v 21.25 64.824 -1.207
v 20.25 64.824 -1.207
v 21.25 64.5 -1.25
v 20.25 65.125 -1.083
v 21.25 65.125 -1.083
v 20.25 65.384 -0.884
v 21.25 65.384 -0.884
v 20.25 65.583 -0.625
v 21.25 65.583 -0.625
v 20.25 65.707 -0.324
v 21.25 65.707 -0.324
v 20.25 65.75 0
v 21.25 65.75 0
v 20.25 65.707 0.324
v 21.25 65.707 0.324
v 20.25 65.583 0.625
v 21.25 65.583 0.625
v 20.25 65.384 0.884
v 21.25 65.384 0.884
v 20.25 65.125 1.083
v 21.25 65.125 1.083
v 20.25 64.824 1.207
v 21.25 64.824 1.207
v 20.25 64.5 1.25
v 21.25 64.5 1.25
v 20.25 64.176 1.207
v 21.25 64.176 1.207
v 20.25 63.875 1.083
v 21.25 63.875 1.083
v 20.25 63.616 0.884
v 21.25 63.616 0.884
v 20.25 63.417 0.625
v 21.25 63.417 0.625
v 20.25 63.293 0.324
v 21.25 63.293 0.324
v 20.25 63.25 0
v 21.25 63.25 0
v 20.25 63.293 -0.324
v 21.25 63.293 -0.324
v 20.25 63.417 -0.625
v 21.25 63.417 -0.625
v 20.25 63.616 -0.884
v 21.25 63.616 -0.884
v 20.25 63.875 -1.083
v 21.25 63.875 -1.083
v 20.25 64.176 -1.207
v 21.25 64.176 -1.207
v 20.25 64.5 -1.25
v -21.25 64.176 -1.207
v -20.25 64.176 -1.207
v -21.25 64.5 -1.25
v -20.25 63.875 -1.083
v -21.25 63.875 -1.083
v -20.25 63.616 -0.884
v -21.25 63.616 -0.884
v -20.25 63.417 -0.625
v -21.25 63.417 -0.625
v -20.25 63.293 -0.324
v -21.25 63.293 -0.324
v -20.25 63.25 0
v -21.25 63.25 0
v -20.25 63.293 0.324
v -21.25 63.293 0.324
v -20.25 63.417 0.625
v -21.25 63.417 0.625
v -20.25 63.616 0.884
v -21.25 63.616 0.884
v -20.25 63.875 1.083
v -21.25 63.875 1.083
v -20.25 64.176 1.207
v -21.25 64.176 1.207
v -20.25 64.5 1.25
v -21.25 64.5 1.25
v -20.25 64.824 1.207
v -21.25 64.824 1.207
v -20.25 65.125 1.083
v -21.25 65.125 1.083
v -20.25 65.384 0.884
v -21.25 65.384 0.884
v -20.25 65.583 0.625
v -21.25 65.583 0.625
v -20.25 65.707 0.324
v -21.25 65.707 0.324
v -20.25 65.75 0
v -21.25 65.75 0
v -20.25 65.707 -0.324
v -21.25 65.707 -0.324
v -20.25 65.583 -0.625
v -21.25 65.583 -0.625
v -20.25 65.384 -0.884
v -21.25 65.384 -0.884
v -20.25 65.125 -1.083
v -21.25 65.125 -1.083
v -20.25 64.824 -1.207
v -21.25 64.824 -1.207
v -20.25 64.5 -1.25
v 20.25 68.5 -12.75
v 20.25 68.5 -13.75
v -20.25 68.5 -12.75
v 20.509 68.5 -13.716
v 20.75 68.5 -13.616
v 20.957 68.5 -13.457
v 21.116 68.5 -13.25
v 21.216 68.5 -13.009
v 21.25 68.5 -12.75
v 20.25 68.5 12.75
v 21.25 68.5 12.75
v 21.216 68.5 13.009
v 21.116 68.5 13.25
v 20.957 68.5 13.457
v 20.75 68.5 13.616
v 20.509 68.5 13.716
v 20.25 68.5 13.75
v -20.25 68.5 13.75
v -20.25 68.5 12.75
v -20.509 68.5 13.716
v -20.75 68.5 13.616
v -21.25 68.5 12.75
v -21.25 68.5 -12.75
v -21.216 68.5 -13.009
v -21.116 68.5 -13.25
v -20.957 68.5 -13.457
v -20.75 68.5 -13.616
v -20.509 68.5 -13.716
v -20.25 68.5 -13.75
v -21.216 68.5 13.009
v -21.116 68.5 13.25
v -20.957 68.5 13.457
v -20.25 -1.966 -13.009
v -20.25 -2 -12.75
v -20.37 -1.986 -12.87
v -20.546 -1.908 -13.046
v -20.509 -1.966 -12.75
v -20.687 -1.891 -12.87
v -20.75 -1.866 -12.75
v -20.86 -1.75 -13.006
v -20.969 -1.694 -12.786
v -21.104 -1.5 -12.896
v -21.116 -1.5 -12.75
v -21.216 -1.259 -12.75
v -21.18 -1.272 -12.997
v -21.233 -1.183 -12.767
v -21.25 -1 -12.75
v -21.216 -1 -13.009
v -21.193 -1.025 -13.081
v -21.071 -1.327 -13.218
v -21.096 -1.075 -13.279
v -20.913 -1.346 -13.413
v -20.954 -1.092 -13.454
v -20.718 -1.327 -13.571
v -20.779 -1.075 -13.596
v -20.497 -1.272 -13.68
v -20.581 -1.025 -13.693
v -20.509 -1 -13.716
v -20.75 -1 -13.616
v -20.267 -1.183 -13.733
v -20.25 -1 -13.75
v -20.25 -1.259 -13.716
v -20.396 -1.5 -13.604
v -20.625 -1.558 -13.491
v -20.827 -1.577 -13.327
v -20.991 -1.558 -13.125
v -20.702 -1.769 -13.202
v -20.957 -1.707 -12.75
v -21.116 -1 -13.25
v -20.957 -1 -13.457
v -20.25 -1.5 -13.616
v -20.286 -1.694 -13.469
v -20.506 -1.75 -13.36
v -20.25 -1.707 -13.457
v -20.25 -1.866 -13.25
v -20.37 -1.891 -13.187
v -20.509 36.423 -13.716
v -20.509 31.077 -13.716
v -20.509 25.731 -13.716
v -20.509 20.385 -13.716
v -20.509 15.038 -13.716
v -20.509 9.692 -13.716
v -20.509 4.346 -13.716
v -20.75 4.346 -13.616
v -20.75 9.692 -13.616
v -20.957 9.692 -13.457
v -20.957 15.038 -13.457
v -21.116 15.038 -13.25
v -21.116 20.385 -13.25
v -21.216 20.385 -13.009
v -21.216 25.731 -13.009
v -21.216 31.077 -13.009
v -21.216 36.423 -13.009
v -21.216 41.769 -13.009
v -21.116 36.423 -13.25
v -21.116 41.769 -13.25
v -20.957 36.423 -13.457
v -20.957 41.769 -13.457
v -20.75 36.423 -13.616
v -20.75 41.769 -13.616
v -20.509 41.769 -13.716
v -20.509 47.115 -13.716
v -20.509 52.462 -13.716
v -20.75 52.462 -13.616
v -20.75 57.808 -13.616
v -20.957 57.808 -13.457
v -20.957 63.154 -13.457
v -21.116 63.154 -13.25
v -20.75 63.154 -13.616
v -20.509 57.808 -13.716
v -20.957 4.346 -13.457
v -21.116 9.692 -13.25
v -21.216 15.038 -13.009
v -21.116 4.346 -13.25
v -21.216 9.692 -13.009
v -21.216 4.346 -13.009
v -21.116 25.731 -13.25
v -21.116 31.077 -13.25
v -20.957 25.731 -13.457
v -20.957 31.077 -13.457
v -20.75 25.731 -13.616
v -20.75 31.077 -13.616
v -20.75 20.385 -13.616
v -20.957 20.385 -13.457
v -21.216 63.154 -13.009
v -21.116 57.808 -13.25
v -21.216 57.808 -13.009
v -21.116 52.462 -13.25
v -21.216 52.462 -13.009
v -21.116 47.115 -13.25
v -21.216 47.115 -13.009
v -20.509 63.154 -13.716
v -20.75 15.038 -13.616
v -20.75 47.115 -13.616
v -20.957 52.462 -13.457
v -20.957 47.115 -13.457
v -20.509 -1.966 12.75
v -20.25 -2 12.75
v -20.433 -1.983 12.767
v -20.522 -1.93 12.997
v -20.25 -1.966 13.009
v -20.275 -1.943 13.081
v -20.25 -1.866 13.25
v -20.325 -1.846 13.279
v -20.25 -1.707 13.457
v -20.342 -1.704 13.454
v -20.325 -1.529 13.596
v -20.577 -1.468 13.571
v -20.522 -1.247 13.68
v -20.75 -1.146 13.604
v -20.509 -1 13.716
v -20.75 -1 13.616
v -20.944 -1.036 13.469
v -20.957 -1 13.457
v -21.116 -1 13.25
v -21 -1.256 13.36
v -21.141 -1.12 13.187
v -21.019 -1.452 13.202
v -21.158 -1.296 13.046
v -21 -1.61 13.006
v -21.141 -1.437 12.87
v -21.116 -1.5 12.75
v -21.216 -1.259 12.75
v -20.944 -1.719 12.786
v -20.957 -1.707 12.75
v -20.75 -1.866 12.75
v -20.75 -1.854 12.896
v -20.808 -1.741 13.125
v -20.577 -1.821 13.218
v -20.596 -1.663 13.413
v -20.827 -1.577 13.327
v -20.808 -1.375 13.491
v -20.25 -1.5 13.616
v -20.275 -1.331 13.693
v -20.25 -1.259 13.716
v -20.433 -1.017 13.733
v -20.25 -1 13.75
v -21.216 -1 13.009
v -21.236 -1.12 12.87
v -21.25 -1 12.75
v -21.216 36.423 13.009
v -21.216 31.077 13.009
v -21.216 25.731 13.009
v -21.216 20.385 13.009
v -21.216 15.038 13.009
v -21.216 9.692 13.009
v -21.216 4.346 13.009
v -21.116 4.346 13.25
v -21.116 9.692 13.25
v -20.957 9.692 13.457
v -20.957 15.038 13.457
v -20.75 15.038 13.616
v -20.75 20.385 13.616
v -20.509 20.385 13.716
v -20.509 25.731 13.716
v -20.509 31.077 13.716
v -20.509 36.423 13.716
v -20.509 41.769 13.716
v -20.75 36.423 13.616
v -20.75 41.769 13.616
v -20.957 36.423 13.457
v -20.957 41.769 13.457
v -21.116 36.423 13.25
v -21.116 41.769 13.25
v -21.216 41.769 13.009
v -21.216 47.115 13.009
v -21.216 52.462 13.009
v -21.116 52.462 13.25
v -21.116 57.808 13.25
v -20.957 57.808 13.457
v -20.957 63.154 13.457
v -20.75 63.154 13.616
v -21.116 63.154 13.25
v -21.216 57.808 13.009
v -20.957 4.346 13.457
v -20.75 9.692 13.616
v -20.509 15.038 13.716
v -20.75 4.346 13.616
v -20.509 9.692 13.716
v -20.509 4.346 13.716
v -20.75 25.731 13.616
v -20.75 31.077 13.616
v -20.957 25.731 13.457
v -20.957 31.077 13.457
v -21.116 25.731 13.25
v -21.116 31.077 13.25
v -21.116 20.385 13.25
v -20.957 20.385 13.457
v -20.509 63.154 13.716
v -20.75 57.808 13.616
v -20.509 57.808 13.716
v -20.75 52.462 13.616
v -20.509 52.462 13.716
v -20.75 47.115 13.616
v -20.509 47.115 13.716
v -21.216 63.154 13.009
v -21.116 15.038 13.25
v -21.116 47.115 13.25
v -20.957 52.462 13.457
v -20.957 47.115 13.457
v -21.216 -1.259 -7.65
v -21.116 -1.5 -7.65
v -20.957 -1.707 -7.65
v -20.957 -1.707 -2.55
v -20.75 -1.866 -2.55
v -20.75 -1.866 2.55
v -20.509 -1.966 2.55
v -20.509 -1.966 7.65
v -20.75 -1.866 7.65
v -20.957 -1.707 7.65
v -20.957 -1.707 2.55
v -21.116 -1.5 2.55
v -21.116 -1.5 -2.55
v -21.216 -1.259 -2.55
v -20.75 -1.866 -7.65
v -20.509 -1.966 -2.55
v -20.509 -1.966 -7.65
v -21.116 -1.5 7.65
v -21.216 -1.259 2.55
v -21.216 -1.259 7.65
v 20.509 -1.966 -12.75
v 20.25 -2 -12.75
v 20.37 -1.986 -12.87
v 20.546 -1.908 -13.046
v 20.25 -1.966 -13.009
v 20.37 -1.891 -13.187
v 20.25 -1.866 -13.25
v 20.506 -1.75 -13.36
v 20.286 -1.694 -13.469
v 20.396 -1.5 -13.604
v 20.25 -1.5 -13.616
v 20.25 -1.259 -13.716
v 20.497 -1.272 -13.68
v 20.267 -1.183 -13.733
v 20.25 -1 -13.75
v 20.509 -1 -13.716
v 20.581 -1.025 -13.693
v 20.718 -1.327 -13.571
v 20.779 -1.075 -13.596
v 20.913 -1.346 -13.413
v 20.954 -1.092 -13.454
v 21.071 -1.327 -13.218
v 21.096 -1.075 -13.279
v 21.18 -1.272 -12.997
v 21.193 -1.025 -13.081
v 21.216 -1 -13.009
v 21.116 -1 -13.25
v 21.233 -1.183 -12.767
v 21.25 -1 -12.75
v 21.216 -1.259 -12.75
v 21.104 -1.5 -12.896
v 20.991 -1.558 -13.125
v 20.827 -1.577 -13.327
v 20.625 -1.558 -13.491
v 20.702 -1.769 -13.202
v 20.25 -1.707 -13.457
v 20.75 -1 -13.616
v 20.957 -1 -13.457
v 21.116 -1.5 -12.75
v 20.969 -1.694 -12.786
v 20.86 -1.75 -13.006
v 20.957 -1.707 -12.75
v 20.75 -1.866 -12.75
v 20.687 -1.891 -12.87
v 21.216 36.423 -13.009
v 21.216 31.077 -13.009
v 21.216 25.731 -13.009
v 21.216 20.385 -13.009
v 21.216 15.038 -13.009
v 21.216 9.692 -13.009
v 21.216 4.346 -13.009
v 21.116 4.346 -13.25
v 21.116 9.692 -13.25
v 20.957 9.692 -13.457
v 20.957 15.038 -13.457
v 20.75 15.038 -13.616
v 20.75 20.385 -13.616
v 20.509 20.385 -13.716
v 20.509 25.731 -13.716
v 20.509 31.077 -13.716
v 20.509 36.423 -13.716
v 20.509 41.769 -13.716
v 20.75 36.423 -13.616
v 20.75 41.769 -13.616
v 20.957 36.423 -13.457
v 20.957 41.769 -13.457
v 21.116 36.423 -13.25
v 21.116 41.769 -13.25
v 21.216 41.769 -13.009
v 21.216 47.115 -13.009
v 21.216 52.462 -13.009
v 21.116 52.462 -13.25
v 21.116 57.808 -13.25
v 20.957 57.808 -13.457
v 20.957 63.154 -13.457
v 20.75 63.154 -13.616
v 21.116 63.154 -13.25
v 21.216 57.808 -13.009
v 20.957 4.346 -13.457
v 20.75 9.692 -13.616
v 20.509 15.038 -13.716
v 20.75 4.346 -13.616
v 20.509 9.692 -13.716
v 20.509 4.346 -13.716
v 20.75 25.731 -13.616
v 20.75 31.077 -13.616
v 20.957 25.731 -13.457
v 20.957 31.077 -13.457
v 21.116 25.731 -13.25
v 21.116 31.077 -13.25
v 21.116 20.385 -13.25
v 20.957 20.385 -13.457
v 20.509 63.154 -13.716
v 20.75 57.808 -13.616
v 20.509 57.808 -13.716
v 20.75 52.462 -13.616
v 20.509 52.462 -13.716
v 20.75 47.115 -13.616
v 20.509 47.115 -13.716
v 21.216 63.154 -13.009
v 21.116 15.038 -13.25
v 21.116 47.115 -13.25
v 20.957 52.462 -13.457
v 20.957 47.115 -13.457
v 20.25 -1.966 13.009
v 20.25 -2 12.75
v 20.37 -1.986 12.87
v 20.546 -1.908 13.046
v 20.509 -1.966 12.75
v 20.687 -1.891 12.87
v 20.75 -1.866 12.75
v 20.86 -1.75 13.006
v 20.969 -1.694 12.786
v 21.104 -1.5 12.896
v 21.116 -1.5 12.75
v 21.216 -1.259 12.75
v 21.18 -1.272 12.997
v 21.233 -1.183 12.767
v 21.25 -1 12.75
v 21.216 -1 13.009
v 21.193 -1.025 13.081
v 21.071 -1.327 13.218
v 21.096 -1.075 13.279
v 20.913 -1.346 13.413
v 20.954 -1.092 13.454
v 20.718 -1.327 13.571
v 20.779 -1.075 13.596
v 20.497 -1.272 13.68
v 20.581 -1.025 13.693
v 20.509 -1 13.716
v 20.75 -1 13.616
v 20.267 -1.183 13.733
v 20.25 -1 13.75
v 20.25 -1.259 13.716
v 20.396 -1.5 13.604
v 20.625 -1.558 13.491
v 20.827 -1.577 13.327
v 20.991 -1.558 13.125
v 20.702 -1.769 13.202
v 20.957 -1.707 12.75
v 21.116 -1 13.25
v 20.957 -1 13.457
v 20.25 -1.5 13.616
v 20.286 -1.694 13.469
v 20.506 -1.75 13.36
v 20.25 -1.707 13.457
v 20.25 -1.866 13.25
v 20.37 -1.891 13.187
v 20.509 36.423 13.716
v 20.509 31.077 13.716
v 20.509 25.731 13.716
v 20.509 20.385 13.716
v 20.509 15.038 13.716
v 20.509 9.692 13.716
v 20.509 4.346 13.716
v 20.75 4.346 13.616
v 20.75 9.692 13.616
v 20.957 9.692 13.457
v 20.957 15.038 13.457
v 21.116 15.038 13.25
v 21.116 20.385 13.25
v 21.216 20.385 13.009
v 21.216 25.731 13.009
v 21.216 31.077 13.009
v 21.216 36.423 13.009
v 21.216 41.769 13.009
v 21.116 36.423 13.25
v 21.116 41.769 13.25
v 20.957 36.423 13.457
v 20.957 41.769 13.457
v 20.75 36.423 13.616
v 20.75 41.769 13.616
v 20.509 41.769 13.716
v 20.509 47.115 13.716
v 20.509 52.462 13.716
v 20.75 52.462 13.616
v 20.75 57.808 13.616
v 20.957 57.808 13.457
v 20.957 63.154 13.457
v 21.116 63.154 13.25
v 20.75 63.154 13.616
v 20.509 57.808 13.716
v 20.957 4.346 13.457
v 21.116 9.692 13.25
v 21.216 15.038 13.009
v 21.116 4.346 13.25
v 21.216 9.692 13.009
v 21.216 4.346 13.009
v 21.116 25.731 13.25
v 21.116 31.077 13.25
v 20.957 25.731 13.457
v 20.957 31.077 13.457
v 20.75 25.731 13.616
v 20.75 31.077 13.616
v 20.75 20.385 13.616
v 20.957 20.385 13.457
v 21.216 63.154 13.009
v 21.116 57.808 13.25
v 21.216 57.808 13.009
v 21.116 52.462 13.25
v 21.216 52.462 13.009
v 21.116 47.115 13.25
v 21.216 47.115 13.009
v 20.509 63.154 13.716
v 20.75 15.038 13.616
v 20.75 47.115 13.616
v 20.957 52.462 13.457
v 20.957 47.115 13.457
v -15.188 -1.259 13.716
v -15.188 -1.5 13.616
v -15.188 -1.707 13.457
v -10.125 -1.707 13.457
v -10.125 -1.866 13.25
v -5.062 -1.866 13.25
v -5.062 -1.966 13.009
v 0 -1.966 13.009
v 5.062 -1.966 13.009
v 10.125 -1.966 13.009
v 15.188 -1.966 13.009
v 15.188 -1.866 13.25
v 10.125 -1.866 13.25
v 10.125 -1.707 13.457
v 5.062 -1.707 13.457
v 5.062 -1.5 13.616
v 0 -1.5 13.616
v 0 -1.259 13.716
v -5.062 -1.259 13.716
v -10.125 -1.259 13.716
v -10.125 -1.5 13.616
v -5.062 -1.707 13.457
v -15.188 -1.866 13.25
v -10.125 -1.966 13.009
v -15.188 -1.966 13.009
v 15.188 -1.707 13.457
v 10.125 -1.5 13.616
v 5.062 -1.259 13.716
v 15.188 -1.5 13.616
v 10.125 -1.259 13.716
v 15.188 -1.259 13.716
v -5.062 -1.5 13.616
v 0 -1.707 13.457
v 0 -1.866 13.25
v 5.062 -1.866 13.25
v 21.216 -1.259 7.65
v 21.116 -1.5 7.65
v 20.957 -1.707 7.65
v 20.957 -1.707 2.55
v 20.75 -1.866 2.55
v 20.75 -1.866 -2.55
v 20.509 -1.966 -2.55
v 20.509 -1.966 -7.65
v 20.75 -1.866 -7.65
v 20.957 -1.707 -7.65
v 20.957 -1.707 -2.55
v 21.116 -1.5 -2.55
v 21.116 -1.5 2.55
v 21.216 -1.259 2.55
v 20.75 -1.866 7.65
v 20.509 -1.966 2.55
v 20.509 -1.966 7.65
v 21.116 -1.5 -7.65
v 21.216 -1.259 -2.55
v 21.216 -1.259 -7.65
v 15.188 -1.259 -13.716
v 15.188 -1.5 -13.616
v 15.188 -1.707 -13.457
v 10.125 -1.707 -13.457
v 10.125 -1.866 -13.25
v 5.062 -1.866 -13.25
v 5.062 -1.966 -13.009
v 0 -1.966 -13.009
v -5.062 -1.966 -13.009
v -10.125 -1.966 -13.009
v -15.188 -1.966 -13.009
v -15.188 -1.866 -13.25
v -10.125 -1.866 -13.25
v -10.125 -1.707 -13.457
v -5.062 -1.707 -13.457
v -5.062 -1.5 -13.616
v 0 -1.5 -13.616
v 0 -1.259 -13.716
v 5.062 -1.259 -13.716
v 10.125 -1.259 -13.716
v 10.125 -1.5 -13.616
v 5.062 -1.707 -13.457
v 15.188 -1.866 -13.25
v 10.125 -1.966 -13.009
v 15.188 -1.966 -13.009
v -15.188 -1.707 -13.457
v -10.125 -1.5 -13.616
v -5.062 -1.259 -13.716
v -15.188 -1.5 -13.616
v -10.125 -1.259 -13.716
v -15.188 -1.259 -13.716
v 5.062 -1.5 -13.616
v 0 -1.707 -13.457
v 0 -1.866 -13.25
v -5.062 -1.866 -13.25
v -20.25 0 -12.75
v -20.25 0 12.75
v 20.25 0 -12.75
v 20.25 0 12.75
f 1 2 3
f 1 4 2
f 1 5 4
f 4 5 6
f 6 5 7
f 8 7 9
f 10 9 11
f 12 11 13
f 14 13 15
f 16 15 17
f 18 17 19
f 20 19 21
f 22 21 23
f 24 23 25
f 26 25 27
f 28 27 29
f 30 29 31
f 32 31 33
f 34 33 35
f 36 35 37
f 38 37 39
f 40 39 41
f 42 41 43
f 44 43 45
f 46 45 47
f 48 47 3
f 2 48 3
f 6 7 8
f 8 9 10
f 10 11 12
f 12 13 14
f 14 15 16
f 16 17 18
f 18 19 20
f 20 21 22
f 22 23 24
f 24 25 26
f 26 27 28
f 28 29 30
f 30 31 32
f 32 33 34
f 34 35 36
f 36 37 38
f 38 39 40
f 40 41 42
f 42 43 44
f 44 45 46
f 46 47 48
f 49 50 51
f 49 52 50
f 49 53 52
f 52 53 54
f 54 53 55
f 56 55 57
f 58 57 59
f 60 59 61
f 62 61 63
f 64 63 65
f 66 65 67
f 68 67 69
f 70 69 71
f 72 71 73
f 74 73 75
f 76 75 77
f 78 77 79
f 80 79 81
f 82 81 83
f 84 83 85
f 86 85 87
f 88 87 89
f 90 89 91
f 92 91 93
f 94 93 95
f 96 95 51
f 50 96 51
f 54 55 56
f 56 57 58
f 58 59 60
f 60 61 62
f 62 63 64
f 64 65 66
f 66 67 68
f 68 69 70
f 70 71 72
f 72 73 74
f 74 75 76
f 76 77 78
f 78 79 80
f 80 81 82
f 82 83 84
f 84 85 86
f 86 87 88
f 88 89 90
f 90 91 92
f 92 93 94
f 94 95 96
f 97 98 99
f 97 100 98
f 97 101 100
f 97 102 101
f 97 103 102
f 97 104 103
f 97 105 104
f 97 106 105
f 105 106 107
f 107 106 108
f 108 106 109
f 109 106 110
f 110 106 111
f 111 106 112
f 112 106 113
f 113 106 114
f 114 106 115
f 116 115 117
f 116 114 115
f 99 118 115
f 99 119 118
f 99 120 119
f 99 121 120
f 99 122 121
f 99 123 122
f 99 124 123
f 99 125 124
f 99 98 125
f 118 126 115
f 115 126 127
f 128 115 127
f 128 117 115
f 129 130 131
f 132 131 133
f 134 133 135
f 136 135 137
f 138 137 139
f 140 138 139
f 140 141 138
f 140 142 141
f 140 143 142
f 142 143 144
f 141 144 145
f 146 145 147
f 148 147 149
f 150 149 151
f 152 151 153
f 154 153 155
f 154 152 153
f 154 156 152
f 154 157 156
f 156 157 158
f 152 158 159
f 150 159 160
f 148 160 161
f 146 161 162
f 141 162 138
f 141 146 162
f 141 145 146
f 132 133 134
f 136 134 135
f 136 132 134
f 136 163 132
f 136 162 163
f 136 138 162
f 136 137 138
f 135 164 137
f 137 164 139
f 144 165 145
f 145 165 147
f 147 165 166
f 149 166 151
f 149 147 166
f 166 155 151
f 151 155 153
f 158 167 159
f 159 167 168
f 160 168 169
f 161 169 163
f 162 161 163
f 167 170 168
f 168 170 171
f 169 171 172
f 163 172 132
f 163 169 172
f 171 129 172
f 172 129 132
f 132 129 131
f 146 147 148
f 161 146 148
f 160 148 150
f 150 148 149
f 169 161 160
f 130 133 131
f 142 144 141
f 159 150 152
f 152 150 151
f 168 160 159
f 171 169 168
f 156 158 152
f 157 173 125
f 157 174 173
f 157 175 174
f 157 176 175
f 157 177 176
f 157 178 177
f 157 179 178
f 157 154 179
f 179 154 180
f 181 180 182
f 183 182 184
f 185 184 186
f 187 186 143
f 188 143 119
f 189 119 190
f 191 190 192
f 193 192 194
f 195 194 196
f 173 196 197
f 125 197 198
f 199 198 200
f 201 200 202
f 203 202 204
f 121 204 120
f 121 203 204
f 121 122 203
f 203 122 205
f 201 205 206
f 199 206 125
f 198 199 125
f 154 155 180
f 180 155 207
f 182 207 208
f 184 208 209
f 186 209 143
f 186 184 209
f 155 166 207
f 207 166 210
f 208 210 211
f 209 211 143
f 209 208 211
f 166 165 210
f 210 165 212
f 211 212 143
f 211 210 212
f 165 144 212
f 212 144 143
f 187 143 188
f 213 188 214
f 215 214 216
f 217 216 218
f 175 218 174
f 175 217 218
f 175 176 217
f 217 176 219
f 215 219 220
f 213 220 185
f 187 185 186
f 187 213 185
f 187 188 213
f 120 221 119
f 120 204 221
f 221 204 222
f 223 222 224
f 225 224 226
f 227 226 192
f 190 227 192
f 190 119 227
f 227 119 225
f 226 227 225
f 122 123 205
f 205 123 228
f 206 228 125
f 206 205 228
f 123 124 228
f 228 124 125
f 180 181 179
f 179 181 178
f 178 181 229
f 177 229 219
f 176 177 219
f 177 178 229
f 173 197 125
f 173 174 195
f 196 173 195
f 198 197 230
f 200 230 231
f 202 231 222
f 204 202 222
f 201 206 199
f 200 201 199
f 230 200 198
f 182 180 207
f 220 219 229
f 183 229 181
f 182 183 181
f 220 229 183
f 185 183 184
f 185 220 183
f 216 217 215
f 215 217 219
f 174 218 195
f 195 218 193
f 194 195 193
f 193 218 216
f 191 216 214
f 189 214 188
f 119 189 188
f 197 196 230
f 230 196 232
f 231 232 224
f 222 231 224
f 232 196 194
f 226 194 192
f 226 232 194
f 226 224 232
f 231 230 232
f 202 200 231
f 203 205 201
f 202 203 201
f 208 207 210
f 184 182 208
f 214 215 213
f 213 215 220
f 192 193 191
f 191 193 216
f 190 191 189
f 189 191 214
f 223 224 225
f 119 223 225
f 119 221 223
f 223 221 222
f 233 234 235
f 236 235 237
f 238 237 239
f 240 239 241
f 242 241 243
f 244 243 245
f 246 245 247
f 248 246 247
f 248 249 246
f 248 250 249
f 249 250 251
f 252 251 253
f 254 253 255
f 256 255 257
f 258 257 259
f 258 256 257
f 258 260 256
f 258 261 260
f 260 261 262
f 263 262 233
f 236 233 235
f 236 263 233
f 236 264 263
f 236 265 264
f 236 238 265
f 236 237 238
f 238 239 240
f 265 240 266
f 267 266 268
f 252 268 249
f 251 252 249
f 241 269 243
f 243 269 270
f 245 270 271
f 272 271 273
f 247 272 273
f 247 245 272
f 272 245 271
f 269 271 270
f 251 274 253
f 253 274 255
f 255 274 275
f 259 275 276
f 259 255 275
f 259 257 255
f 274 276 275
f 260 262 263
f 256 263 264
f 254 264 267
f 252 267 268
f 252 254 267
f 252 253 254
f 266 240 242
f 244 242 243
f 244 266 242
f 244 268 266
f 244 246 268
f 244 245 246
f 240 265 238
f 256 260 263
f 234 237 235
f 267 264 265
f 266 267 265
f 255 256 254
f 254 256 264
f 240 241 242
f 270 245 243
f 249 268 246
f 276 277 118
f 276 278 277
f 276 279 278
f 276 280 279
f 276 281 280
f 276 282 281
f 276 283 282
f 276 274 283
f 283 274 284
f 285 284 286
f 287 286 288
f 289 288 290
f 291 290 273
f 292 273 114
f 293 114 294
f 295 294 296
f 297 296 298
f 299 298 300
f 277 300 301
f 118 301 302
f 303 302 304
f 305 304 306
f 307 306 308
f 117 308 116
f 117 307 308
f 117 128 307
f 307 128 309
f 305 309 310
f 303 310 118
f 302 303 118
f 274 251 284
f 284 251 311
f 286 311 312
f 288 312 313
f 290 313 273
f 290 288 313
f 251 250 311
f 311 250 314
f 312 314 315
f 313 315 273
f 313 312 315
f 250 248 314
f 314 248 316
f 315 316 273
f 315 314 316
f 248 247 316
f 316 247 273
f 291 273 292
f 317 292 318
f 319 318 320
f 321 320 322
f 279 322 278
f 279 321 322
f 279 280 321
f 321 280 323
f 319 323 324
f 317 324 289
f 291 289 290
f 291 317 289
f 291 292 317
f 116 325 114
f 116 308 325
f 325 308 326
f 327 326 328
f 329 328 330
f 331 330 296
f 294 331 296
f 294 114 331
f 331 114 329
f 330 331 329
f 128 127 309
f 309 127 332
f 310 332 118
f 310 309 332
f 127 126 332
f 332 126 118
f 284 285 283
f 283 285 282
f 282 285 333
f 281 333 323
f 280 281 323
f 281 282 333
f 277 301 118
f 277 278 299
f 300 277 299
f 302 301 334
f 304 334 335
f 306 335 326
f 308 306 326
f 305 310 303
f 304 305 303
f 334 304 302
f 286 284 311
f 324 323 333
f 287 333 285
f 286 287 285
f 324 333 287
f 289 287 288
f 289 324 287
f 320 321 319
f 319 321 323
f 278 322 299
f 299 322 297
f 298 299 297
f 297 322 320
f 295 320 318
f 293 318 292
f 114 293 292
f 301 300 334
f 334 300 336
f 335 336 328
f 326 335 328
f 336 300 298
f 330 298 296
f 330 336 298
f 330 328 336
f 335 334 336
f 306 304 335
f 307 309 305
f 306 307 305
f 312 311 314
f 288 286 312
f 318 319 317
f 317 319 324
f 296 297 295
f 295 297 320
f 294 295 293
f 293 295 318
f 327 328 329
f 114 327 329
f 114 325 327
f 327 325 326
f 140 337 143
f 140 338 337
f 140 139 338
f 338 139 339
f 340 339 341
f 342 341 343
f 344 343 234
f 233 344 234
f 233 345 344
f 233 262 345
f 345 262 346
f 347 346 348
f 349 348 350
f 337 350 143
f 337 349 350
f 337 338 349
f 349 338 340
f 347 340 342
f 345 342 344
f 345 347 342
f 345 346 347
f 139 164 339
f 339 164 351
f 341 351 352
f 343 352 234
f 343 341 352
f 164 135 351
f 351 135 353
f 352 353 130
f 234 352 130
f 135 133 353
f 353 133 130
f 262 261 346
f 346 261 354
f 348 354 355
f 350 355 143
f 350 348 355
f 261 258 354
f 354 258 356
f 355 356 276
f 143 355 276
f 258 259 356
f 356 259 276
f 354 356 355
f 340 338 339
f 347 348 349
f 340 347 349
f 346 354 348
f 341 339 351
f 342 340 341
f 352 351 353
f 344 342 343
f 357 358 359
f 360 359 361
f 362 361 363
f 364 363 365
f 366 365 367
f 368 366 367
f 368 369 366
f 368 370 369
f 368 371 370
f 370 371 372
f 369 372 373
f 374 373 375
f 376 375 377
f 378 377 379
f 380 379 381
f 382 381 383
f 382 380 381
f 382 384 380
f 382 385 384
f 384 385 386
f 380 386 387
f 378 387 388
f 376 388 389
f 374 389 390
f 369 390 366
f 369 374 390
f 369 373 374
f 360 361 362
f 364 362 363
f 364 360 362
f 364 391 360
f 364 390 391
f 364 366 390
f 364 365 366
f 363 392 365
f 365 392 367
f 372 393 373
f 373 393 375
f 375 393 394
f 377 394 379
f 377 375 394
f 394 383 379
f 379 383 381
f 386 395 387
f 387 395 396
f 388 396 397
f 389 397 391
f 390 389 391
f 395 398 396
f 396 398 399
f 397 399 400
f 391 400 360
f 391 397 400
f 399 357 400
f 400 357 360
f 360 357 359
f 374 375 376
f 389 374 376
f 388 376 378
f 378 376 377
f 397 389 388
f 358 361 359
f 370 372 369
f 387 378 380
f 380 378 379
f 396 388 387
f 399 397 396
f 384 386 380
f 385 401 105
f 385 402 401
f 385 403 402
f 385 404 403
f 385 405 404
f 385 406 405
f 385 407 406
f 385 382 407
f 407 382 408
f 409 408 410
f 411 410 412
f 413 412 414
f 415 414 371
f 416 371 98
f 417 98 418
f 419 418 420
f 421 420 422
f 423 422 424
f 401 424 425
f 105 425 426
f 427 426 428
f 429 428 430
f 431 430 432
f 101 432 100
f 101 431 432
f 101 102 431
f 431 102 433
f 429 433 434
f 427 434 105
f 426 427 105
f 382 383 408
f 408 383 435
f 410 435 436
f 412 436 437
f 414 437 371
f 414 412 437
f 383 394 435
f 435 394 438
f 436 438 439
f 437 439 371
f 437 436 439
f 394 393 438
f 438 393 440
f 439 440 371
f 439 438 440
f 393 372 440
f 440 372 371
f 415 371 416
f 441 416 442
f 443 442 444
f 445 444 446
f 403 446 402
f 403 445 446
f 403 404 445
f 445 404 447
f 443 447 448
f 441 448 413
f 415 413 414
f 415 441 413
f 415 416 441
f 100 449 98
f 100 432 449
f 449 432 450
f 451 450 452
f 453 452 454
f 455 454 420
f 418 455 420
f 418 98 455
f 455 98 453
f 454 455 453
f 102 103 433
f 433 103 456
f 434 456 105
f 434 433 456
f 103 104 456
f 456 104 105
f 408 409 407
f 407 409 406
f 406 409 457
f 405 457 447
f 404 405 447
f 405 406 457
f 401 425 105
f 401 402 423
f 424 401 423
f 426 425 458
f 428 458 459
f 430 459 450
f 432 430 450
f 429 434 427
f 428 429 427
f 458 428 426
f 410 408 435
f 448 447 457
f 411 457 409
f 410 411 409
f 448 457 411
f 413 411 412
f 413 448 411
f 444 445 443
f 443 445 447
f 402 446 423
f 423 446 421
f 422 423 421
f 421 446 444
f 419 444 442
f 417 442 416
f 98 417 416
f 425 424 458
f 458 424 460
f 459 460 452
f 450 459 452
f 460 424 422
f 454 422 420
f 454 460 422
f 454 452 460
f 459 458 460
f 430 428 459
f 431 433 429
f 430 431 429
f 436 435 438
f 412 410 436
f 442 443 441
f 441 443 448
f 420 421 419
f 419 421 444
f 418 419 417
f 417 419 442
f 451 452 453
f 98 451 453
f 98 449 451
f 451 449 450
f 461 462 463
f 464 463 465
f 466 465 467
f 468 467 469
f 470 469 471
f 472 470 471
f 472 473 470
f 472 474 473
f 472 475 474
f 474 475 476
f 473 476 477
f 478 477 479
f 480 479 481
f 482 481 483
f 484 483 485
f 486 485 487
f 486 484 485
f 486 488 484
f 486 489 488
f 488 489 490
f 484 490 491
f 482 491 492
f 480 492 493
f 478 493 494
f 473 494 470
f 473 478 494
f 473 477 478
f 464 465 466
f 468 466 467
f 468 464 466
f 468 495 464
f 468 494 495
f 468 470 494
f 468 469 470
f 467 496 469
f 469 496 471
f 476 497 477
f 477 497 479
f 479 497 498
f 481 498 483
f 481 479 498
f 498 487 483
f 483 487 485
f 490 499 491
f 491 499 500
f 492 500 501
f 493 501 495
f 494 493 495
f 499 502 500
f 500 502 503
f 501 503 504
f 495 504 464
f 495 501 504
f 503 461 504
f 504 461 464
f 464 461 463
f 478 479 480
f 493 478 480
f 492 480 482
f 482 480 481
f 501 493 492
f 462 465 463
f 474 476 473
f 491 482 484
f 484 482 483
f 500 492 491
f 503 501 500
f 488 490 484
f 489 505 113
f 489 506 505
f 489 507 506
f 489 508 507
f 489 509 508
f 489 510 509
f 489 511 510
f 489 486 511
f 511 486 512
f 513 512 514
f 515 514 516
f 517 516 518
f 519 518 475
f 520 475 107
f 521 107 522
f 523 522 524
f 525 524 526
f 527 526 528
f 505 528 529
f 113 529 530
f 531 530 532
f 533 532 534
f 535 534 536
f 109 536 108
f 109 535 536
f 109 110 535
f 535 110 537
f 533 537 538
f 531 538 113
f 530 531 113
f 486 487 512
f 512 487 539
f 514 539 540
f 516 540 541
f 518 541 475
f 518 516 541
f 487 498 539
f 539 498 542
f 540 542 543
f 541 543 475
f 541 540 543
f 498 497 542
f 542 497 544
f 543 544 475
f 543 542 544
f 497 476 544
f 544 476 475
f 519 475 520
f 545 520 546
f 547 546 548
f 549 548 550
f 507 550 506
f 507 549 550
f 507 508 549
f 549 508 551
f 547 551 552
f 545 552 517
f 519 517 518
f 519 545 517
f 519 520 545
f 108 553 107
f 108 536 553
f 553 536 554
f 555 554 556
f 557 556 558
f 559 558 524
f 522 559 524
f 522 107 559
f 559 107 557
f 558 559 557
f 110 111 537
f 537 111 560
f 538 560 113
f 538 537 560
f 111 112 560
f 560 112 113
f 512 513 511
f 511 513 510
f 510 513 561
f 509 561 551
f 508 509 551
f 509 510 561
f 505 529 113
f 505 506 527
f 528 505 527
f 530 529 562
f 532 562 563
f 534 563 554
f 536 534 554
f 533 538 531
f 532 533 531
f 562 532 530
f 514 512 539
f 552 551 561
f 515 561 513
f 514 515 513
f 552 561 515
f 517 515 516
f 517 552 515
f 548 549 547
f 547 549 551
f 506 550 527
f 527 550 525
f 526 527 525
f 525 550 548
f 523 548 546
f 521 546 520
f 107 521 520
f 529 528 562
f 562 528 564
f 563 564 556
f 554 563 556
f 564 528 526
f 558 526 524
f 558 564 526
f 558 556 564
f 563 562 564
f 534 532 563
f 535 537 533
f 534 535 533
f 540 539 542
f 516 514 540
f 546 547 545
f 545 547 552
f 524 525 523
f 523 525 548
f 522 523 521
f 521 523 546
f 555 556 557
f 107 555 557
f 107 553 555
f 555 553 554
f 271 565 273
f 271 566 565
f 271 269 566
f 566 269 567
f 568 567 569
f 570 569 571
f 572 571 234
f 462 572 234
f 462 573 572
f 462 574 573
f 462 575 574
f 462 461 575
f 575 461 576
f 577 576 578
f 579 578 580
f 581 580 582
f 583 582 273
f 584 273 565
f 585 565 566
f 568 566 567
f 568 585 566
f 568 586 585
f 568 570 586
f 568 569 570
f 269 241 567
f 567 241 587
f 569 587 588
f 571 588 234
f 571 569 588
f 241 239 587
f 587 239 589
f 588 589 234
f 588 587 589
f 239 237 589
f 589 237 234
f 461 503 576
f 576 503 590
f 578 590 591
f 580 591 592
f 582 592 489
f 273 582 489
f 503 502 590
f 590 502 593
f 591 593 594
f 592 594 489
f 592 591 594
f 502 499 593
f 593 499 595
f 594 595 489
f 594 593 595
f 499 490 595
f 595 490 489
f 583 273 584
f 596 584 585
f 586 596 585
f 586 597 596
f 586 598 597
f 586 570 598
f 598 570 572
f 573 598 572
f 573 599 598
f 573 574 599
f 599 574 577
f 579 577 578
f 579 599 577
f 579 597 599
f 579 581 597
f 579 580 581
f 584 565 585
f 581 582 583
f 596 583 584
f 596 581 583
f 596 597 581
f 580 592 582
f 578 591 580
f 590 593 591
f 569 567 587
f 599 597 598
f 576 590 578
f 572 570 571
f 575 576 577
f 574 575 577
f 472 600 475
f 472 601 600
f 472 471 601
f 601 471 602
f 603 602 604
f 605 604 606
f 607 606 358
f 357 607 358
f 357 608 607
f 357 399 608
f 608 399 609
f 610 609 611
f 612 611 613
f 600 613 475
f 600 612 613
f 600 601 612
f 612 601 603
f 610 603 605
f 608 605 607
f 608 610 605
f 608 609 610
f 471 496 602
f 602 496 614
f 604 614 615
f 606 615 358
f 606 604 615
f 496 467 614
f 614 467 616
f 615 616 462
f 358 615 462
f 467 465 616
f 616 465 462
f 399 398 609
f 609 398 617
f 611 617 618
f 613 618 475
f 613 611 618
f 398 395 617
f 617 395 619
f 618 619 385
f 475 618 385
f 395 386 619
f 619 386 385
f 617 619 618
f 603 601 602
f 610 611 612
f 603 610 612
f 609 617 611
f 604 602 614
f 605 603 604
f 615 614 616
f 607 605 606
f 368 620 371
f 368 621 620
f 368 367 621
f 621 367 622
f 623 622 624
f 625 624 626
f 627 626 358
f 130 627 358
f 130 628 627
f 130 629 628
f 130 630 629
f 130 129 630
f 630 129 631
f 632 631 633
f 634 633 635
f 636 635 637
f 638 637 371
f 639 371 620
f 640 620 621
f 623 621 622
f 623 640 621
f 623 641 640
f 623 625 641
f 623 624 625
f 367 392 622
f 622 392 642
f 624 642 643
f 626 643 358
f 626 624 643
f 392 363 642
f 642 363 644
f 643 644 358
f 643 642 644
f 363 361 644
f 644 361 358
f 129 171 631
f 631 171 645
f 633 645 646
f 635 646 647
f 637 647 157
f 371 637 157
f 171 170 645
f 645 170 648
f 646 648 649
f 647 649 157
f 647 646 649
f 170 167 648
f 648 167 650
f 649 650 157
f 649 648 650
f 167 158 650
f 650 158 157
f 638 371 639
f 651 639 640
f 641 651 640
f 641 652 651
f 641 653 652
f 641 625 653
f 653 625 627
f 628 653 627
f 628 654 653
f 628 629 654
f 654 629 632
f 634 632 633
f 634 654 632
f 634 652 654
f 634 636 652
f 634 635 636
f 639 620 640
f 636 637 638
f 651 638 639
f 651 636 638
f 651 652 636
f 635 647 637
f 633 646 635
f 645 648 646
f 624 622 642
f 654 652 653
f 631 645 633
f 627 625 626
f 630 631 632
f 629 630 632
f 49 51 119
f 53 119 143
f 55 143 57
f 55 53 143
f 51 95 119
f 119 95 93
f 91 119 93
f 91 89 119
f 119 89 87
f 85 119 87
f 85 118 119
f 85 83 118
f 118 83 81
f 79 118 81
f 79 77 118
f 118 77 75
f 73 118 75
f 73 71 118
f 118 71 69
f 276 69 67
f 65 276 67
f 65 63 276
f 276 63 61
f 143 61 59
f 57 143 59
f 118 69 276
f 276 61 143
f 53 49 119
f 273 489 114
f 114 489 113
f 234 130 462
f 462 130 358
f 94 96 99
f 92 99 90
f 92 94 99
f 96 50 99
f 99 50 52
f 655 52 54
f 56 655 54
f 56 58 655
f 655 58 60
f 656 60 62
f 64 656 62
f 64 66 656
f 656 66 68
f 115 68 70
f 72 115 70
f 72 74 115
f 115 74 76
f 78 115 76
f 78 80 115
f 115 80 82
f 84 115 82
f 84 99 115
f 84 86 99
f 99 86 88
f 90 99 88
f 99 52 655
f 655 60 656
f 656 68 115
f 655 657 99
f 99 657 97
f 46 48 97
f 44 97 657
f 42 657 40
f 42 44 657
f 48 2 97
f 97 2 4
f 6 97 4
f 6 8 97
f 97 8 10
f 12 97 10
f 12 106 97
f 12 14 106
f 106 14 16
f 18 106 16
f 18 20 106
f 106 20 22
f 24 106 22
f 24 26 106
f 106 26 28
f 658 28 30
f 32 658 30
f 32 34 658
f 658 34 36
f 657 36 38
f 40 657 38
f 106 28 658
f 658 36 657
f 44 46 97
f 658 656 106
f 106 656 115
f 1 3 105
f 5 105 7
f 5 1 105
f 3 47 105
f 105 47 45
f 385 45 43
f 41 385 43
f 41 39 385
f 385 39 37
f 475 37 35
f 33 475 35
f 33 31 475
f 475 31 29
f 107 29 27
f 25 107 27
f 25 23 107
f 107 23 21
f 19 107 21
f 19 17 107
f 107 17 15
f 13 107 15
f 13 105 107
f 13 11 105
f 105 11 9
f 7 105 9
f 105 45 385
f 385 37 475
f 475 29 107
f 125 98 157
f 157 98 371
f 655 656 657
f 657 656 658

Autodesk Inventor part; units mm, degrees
ref_plane "YZ Plane" through (0, 0, 0) normal (1, 0, 0) x (0, 1, 0)
ref_plane "XZ Plane" through (0, 0, 0) normal (0, 1, 0) x (-1, 0, 0)
ref_plane "XY Plane" through (0, 0, 0) normal (0, 0, 1) x (1, 0, 0)
sketch "Sketch2" plane through (0, 0, 0) normal (0, 1, 0) x (-1, 0, 0)
  line L0 (-21.25, -13.75) -> (21.25, -13.75)
  line L1 (21.25, -13.75) -> (21.25, 13.75)
  line L2 (21.25, 13.75) -> (-21.25, 13.75)
  line L3 (-21.25, 13.75) -> (-21.25, -13.75)
  line L4 (-21.25, -13.75) -> (21.25, 13.75) construction
  line L5 (21.25, -13.75) -> (-21.25, 13.75) construction
  point P0 (0, 0)
  dimension "d2" = 42.5
  dimension "d3" = 27.5
extrude "Extrusion1" add sketch "Sketch2" against normal blind 2
sketch "Sketch3" plane through (0, 0, 0) normal (0, 1, 0) x (1, 0, 0)
  line L0 (21.25, -13.75) -> (-21.25, -13.75) projected
  line L1 (-21.25, 13.75) -> (21.25, 13.75) projected
  line L2 (-21.25, -13.75) -> (21.25, -13.75)
  line L3 (21.25, -13.75) -> (21.25, 13.75)
  line L4 (21.25, 13.75) -> (-21.25, 13.75)
  line L5 (-21.25, 13.75) -> (-21.25, -13.75)
  line L6 (-20.25, -12.75) -> (20.25, -12.75) projected
  line L7 (-20.25, 12.75) -> (-20.25, -12.75) projected
  line L8 (20.25, 12.75) -> (-20.25, 12.75) projected
  line L9 (20.25, -12.75) -> (20.25, 12.75) projected
  line L10 (-20.25, -12.75) -> (20.25, -12.75)
  line L11 (20.25, -12.75) -> (20.25, 12.75)
  line L12 (20.25, 12.75) -> (-20.25, 12.75)
  line L13 (-20.25, 12.75) -> (-20.25, -12.75)
  point P0 (0, 0)
extrude "Extrusion2" add sketch "Sketch3" along normal blind 60.5
fillet "Fillet1" radius 1 8 edges at (21.25, 29.25, 13.75) (21.25, 29.25, -13.75) (-21.25, 29.25, 13.75) (-21.25, 29.25, -13.75) (0, -2, -13.75) (21.25, -2, 0) (0, -2, 13.75) (-21.25, -2, 0)
sketch "Sketch4" plane through (0, 60.5, 0) normal (0, 1, 0) x (1, 0, 0)
  arc A0 (-20.25, 13.75) -> (-21.25, 12.75) centre (-20.25, 12.75) ccw projected
  line L0 (-21.25, 12.75) -> (-21.25, -12.75) projected
  arc A1 (-21.25, -12.75) -> (-20.25, -13.75) centre (-20.25, -12.75) ccw projected
  line L1 (-20.25, -13.75) -> (20.25, -13.75) projected
  arc A2 (20.25, -13.75) -> (21.25, -12.75) centre (20.25, -12.75) ccw projected
  line L2 (21.25, -12.75) -> (21.25, 12.75) projected
  arc A3 (21.25, 12.75) -> (20.25, 13.75) centre (20.25, 12.75) ccw projected
  line L3 (20.25, 13.75) -> (-20.25, 13.75) projected
  line L4 (-20.25, -12.75) -> (-20.25, 12.75) projected
  line L5 (-20.25, 12.75) -> (20.25, 12.75) projected
  line L6 (20.25, 12.75) -> (20.25, -12.75) projected
  line L7 (20.25, -12.75) -> (-20.25, -12.75) projected
  point P0 (0, 0)
extrude "Extrusion3" add sketch "Sketch4" along normal blind 8
sketch "Sketch5" plane through (21.25, -1, 12.75) normal (1, 0, 0) x (0, 0, -1)
  line L0 (26.5, 69.5) -> (25.5, 69.5) projected
  line L1 (-1, 69.5) -> (26.5, 69.5)
  line L2 (25.5, 69.5) -> (0, 69.5) projected
  line L3 (12.75, 69.5) -> (12.75, 61.5)
  circle A0 centre (12.75, 65.5) radius 1.25
  point P0 (12.75, 1)
  dimension "d11" = 8
  dimension "d12" = 2.5
extrude "Extrusion4" cut sketch "Sketch5" against normal through all
properties part number "Case"
